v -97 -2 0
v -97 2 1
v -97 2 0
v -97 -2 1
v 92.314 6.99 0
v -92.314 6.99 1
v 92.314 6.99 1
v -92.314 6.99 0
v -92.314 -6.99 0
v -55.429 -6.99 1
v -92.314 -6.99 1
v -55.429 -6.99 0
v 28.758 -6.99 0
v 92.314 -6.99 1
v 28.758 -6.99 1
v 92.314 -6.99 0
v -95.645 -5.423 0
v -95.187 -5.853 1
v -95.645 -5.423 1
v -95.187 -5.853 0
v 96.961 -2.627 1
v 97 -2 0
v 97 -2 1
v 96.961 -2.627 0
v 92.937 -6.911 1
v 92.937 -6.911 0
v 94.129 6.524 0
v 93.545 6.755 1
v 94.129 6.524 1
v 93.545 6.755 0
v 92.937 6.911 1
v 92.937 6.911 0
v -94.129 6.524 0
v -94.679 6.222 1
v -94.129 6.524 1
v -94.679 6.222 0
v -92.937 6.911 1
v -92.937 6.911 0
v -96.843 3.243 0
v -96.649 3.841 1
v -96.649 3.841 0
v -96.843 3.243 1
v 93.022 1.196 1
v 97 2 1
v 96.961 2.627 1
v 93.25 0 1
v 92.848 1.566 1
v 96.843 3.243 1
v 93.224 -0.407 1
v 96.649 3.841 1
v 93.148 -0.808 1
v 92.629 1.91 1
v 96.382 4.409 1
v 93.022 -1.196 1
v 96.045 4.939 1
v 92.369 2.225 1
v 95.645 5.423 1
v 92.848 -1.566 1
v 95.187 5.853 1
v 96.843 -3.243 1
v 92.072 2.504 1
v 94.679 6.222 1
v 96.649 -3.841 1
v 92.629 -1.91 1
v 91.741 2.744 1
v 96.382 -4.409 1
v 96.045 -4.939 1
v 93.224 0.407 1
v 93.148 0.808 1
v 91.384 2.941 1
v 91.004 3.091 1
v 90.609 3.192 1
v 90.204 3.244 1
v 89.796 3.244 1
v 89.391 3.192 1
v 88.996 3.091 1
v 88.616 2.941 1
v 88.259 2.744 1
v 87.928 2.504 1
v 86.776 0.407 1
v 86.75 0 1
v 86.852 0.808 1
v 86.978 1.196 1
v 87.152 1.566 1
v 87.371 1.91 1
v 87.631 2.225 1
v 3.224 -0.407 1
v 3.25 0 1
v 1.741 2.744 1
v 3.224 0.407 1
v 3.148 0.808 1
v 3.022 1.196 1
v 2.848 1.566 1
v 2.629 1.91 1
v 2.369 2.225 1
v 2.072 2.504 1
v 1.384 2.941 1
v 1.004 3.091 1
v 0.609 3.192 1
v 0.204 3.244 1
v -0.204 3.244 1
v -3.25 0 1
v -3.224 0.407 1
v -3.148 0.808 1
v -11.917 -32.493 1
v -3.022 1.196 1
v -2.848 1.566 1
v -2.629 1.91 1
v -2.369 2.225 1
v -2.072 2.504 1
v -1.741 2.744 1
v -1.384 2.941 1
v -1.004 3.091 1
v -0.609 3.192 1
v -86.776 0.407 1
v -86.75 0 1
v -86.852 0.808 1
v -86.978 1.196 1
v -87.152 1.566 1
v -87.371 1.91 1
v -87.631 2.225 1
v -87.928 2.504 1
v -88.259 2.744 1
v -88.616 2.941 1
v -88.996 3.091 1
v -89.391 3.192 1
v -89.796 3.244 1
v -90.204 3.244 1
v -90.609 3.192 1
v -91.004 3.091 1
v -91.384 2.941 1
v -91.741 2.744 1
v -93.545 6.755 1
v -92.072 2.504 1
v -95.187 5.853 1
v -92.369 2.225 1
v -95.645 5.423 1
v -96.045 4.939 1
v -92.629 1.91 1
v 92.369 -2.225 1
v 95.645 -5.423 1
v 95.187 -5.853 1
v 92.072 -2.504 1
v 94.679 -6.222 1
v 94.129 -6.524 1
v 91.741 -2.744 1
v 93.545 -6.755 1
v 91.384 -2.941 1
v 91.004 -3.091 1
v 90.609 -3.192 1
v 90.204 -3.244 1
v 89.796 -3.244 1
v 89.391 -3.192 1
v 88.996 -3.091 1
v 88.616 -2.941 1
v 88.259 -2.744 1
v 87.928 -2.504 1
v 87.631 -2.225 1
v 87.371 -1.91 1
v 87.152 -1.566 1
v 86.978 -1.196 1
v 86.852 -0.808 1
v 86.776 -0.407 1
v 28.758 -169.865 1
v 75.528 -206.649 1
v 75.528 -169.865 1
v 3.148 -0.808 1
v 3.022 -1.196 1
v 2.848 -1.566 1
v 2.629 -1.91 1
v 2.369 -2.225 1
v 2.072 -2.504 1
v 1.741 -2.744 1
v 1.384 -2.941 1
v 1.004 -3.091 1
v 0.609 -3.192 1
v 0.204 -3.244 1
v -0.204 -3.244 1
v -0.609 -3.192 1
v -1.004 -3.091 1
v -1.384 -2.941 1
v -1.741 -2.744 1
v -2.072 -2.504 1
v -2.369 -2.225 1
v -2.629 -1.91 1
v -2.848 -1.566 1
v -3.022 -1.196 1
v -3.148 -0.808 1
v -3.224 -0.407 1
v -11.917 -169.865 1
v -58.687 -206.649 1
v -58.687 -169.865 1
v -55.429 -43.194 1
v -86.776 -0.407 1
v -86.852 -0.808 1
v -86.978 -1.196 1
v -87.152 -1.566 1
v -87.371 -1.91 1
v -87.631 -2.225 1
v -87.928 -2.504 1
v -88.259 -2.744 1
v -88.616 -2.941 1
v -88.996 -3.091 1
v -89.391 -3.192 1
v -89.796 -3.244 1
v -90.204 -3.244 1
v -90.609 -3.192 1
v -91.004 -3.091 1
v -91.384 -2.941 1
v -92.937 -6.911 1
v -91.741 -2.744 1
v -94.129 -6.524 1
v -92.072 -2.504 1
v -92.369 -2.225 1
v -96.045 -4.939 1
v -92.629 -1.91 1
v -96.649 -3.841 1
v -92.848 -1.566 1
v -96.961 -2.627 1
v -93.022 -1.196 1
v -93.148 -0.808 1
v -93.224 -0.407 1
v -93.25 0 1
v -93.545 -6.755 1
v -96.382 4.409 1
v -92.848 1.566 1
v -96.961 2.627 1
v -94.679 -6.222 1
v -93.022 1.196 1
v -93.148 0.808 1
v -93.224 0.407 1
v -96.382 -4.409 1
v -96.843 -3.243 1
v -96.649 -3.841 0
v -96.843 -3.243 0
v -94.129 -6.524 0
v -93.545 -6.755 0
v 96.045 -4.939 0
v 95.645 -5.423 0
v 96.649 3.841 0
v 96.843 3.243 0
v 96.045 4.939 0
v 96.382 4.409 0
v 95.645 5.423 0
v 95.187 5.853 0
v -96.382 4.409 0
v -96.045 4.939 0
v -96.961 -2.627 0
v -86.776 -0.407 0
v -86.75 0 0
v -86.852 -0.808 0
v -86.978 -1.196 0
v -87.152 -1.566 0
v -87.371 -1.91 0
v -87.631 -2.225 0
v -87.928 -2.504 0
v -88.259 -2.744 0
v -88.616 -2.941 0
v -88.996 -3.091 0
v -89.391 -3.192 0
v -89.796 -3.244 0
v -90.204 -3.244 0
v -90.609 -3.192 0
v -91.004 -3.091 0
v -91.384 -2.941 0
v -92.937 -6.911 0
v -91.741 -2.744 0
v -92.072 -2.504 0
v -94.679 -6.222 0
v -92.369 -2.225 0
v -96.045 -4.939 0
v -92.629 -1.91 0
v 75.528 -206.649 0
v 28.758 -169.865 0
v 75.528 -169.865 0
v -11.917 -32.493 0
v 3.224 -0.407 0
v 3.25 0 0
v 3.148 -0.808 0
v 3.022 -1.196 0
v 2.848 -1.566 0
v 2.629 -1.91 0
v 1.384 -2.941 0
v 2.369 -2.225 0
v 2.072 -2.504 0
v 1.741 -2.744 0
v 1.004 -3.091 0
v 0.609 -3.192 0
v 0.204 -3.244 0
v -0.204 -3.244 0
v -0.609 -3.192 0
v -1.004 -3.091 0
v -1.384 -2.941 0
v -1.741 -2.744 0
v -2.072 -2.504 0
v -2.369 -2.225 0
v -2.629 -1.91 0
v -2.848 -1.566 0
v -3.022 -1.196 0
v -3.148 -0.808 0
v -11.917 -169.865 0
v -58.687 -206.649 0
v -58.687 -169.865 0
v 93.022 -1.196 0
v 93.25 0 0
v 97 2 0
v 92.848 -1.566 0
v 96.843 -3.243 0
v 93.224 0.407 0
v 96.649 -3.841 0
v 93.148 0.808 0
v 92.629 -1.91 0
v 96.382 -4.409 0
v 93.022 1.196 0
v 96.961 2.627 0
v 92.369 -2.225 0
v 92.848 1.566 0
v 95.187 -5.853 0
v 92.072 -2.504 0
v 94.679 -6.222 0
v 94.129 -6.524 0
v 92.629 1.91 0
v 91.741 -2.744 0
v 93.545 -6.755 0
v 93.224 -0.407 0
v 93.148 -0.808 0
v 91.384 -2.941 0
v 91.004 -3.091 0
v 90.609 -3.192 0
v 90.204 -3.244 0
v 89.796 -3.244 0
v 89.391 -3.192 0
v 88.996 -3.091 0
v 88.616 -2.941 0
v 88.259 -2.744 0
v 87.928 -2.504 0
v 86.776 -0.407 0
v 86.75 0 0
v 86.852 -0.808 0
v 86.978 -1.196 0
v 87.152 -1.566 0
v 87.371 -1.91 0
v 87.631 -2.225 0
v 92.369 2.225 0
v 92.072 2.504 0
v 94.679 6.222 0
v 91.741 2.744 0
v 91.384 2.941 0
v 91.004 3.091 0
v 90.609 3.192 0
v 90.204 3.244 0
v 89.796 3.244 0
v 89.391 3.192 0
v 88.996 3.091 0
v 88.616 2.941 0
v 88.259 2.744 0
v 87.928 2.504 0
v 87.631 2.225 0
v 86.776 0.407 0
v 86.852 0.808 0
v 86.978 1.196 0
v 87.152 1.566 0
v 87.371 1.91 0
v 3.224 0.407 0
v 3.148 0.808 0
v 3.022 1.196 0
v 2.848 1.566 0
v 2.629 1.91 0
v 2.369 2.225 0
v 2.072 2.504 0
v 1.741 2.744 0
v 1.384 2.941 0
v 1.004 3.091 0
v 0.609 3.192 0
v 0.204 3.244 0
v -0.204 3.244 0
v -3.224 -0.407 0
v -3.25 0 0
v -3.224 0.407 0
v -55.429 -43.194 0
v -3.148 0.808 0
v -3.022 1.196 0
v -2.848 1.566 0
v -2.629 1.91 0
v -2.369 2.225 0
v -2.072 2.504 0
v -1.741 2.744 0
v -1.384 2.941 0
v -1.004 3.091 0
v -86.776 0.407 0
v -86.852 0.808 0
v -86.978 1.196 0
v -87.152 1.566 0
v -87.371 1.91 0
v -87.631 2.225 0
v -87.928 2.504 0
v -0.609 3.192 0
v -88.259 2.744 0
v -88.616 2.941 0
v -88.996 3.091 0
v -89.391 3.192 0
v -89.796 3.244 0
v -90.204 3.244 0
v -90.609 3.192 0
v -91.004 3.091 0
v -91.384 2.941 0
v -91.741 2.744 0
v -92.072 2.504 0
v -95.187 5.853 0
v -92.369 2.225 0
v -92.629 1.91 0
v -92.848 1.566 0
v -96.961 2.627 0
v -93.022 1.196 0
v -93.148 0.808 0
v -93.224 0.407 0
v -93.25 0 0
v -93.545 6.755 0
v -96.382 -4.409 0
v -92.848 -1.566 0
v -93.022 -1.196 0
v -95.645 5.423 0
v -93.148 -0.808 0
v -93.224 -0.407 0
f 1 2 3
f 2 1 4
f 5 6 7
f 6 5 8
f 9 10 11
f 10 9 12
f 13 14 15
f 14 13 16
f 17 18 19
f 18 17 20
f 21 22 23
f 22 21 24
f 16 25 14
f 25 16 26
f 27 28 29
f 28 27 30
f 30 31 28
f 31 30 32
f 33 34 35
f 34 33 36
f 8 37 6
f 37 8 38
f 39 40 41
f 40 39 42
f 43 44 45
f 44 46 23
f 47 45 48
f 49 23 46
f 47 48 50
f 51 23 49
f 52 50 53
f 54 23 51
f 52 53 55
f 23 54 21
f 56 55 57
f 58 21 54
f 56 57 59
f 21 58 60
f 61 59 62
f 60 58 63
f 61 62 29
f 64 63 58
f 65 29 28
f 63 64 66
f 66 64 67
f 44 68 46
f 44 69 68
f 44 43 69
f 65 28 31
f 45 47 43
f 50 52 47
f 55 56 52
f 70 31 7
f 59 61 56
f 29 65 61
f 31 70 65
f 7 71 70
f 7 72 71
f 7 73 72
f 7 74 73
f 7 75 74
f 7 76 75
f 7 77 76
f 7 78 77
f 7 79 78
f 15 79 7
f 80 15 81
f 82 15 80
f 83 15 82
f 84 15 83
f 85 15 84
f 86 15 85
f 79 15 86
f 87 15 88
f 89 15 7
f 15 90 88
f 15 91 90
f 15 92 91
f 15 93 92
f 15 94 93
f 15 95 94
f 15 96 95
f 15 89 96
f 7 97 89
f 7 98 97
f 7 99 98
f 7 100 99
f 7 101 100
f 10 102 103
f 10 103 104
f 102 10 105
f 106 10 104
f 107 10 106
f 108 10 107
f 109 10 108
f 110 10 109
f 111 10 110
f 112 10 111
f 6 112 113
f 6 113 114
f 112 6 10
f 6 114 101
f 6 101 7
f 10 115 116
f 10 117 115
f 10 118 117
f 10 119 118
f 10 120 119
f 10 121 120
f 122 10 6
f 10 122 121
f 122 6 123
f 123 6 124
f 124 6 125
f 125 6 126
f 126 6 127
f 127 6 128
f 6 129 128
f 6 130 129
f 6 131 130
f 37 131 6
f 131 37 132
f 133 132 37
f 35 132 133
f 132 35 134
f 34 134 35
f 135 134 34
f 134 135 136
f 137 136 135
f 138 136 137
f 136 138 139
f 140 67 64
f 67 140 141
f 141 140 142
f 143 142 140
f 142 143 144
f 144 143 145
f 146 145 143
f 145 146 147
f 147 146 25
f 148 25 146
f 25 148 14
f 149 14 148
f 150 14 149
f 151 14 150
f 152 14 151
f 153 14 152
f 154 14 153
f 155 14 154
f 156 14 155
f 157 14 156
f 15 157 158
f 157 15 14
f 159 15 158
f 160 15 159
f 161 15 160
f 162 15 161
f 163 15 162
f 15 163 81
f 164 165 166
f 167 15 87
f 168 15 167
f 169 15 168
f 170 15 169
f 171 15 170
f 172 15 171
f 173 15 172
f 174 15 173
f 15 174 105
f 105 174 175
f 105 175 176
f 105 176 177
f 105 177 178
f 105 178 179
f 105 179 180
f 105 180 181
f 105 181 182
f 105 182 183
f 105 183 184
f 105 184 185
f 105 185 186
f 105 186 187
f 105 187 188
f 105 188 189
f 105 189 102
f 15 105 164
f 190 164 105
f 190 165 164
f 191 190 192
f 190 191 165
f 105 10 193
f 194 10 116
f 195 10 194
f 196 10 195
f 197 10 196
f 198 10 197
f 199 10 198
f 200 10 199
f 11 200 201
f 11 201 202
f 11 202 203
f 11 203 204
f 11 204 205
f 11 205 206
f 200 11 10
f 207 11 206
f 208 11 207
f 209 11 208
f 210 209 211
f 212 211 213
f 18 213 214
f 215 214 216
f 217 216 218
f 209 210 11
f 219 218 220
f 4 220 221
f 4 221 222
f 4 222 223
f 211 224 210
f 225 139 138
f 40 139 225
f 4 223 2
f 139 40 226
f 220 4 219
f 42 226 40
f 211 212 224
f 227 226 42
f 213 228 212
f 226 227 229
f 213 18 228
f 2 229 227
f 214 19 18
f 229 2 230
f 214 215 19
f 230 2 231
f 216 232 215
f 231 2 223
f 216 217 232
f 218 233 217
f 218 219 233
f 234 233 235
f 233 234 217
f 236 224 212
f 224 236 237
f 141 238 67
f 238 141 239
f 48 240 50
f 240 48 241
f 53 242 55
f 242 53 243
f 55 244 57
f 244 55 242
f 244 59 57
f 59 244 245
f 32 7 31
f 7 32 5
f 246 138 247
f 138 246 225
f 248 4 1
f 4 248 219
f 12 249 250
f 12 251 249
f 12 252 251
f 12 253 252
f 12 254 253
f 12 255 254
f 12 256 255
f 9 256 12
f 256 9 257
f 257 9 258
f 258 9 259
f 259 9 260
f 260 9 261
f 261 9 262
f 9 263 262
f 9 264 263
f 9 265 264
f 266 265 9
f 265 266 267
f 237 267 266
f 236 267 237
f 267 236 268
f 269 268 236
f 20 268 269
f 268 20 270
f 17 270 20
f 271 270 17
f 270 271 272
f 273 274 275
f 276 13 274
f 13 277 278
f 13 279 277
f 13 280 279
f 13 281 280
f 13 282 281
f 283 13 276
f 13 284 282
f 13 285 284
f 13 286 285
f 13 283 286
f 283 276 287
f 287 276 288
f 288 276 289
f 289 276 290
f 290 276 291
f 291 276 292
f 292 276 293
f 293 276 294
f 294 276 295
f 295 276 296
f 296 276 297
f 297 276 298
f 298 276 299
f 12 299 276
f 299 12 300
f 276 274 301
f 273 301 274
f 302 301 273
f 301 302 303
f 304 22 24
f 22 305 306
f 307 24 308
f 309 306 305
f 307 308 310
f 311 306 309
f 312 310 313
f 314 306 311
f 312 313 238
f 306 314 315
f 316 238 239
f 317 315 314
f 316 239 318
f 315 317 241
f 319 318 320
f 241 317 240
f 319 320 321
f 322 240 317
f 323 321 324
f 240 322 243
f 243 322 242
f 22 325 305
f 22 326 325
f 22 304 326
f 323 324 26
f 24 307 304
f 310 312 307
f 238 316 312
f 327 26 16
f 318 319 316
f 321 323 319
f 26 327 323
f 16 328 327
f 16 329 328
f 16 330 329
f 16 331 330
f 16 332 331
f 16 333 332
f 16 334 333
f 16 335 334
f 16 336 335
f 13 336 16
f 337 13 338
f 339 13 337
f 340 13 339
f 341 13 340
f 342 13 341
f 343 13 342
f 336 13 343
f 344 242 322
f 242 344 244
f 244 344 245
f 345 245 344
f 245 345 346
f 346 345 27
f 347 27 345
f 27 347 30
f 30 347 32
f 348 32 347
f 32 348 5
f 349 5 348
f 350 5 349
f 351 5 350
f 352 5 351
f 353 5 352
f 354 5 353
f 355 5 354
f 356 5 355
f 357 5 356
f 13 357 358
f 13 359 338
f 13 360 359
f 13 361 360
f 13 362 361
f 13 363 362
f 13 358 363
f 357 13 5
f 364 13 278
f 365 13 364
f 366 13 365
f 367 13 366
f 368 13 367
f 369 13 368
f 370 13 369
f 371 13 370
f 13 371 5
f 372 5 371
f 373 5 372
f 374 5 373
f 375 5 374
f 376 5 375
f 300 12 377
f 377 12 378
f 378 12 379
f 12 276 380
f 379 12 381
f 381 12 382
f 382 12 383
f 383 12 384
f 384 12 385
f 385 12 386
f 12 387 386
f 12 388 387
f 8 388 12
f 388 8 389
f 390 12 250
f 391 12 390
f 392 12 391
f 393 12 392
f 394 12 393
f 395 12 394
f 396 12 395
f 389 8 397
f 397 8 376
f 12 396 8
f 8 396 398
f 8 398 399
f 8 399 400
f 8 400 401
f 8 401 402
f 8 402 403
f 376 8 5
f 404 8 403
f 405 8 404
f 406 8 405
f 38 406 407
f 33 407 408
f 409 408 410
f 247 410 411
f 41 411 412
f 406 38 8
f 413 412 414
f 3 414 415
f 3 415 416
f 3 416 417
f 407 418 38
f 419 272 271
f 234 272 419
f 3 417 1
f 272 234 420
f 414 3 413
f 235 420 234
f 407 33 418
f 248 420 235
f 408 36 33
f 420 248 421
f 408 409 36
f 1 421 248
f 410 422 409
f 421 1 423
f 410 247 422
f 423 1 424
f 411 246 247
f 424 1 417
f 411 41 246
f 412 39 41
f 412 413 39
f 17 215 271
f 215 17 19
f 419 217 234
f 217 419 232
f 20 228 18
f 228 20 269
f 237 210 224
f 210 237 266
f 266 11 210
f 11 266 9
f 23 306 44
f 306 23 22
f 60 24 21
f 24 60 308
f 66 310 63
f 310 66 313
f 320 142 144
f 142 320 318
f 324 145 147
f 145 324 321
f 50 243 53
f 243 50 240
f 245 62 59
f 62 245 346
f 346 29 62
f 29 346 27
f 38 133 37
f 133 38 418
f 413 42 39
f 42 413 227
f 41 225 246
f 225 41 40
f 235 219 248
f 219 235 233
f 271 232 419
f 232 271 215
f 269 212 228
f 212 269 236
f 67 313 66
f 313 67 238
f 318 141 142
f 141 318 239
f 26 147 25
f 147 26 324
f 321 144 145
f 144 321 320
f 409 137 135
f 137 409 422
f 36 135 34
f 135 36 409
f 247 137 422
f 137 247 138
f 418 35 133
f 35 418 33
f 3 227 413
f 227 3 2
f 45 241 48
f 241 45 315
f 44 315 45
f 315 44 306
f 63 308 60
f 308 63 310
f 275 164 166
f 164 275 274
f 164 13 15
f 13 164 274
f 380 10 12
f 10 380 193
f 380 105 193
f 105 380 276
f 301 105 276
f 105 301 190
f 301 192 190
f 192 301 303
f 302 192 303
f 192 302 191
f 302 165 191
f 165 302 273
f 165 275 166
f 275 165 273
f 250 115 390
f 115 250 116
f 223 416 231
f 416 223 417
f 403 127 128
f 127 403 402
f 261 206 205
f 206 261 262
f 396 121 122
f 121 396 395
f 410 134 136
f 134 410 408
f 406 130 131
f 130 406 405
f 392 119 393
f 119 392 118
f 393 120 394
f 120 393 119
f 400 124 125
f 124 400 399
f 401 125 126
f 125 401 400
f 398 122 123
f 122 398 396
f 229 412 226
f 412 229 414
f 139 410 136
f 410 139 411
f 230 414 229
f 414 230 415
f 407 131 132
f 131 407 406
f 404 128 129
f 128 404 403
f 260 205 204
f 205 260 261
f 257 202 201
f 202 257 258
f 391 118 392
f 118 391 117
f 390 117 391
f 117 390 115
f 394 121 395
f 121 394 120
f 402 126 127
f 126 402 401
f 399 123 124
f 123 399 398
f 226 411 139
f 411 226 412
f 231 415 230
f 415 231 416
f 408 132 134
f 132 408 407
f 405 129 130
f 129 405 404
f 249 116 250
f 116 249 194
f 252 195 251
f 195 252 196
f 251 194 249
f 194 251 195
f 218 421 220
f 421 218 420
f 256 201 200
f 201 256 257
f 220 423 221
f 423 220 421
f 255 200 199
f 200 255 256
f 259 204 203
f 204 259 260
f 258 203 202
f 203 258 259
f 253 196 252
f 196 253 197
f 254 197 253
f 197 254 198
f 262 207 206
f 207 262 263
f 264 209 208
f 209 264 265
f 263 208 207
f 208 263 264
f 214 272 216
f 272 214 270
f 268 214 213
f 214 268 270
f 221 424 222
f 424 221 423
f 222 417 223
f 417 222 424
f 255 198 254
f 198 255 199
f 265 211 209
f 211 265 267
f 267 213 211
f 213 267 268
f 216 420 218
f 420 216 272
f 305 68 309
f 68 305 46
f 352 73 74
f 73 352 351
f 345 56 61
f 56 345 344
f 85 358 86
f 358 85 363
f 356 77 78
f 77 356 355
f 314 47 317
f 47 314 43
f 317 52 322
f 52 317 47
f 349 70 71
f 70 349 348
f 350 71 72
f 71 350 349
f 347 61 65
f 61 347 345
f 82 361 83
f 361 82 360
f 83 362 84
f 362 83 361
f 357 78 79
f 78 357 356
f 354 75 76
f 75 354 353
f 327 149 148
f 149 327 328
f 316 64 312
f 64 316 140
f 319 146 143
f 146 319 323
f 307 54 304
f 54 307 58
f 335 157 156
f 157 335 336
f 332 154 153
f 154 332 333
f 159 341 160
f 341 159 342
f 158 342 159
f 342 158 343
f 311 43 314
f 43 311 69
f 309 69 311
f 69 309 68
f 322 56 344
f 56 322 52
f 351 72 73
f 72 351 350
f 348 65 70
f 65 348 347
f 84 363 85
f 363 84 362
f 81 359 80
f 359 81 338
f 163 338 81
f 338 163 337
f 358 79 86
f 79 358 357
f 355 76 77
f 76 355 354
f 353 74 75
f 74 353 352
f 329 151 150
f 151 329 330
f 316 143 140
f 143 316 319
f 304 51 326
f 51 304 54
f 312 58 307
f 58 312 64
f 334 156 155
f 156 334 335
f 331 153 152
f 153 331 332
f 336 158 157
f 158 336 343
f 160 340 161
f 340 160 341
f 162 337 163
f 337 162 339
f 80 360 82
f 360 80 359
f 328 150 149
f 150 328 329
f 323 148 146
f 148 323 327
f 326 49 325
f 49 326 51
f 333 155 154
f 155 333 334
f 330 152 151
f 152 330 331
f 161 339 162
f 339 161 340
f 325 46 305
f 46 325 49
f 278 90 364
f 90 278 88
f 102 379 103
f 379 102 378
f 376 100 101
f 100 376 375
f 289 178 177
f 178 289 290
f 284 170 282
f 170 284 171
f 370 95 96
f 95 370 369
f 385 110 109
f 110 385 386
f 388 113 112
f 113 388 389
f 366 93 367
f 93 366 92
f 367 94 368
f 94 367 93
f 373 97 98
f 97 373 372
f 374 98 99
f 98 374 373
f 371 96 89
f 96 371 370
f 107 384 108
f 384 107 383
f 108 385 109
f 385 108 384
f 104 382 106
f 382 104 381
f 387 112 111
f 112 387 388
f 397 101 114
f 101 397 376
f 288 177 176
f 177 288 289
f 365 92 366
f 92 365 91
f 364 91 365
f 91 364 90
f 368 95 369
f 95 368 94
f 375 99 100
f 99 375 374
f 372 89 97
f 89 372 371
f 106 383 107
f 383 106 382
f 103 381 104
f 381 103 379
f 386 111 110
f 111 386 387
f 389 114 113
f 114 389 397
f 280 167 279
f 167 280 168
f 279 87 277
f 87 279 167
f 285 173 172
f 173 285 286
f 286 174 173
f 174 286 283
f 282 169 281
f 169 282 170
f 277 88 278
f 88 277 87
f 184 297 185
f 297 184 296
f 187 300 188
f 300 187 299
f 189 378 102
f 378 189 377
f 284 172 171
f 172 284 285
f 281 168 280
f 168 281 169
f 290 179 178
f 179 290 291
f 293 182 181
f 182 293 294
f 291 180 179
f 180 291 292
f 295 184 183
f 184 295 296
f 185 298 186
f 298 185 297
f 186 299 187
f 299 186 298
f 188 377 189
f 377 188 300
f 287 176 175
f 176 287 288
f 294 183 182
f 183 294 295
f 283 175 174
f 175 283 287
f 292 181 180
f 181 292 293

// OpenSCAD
$fn = 50;


difference() {
	union() {
		translate(v = [0, 0, 0]) {
			rotate(a = [0, 0, 0]) {
				hull() {
					translate(v = [-92.0000000000, 2.0000000000, 0]) {
						rotate(a = [0, 0, 0]) {
							translate(v = [0, 0, 0]) {
								rotate(a = [0, 0, 0]) {
									cylinder(h = 1, r = 5);
								}
							}
						}
					}
					translate(v = [92.0000000000, 2.0000000000, 0]) {
						rotate(a = [0, 0, 0]) {
							translate(v = [0, 0, 0]) {
								rotate(a = [0, 0, 0]) {
									cylinder(h = 1, r = 5);
								}
							}
						}
					}
					translate(v = [-92.0000000000, -2.0000000000, 0]) {
						rotate(a = [0, 0, 0]) {
							translate(v = [0, 0, 0]) {
								rotate(a = [0, 0, 0]) {
									cylinder(h = 1, r = 5);
								}
							}
						}
					}
					translate(v = [92.0000000000, -2.0000000000, 0]) {
						rotate(a = [0, 0, 0]) {
							translate(v = [0, 0, 0]) {
								rotate(a = [0, 0, 0]) {
									cylinder(h = 1, r = 5);
								}
							}
						}
					}
				}
			}
		}
		translate(v = [0, 0, 0]) {
			rotate(a = [0, 0, 0]) {
				linear_extrude(height = 1) {
					text(font = "DejaVu Sans Mono:style=Bold", halign = "center", size = 209.0000000000, text = "1", valign = "top");
				}
			}
		}
	}
	union() {
		translate(v = [-90.0000000000, 0.0000000000, -125.0000000000]) {
			rotate(a = [0, 0, 0]) {
				cylinder(h = 250, r = 3.2500000000);
			}
		}
		translate(v = [90.0000000000, 0.0000000000, -125.0000000000]) {
			rotate(a = [0, 0, 0]) {
				cylinder(h = 250, r = 3.2500000000);
			}
		}
		translate(v = [90.0000000000, 0.0000000000, -125.0000000000]) {
			rotate(a = [0, 0, 0]) {
				cylinder(h = 250, r = 3.2500000000);
			}
		}
		translate(v = [0, 0, -125.0000000000]) {
			rotate(a = [0, 0, 0]) {
				cylinder(h = 250, r = 3.2500000000);
			}
		}
	}
}
